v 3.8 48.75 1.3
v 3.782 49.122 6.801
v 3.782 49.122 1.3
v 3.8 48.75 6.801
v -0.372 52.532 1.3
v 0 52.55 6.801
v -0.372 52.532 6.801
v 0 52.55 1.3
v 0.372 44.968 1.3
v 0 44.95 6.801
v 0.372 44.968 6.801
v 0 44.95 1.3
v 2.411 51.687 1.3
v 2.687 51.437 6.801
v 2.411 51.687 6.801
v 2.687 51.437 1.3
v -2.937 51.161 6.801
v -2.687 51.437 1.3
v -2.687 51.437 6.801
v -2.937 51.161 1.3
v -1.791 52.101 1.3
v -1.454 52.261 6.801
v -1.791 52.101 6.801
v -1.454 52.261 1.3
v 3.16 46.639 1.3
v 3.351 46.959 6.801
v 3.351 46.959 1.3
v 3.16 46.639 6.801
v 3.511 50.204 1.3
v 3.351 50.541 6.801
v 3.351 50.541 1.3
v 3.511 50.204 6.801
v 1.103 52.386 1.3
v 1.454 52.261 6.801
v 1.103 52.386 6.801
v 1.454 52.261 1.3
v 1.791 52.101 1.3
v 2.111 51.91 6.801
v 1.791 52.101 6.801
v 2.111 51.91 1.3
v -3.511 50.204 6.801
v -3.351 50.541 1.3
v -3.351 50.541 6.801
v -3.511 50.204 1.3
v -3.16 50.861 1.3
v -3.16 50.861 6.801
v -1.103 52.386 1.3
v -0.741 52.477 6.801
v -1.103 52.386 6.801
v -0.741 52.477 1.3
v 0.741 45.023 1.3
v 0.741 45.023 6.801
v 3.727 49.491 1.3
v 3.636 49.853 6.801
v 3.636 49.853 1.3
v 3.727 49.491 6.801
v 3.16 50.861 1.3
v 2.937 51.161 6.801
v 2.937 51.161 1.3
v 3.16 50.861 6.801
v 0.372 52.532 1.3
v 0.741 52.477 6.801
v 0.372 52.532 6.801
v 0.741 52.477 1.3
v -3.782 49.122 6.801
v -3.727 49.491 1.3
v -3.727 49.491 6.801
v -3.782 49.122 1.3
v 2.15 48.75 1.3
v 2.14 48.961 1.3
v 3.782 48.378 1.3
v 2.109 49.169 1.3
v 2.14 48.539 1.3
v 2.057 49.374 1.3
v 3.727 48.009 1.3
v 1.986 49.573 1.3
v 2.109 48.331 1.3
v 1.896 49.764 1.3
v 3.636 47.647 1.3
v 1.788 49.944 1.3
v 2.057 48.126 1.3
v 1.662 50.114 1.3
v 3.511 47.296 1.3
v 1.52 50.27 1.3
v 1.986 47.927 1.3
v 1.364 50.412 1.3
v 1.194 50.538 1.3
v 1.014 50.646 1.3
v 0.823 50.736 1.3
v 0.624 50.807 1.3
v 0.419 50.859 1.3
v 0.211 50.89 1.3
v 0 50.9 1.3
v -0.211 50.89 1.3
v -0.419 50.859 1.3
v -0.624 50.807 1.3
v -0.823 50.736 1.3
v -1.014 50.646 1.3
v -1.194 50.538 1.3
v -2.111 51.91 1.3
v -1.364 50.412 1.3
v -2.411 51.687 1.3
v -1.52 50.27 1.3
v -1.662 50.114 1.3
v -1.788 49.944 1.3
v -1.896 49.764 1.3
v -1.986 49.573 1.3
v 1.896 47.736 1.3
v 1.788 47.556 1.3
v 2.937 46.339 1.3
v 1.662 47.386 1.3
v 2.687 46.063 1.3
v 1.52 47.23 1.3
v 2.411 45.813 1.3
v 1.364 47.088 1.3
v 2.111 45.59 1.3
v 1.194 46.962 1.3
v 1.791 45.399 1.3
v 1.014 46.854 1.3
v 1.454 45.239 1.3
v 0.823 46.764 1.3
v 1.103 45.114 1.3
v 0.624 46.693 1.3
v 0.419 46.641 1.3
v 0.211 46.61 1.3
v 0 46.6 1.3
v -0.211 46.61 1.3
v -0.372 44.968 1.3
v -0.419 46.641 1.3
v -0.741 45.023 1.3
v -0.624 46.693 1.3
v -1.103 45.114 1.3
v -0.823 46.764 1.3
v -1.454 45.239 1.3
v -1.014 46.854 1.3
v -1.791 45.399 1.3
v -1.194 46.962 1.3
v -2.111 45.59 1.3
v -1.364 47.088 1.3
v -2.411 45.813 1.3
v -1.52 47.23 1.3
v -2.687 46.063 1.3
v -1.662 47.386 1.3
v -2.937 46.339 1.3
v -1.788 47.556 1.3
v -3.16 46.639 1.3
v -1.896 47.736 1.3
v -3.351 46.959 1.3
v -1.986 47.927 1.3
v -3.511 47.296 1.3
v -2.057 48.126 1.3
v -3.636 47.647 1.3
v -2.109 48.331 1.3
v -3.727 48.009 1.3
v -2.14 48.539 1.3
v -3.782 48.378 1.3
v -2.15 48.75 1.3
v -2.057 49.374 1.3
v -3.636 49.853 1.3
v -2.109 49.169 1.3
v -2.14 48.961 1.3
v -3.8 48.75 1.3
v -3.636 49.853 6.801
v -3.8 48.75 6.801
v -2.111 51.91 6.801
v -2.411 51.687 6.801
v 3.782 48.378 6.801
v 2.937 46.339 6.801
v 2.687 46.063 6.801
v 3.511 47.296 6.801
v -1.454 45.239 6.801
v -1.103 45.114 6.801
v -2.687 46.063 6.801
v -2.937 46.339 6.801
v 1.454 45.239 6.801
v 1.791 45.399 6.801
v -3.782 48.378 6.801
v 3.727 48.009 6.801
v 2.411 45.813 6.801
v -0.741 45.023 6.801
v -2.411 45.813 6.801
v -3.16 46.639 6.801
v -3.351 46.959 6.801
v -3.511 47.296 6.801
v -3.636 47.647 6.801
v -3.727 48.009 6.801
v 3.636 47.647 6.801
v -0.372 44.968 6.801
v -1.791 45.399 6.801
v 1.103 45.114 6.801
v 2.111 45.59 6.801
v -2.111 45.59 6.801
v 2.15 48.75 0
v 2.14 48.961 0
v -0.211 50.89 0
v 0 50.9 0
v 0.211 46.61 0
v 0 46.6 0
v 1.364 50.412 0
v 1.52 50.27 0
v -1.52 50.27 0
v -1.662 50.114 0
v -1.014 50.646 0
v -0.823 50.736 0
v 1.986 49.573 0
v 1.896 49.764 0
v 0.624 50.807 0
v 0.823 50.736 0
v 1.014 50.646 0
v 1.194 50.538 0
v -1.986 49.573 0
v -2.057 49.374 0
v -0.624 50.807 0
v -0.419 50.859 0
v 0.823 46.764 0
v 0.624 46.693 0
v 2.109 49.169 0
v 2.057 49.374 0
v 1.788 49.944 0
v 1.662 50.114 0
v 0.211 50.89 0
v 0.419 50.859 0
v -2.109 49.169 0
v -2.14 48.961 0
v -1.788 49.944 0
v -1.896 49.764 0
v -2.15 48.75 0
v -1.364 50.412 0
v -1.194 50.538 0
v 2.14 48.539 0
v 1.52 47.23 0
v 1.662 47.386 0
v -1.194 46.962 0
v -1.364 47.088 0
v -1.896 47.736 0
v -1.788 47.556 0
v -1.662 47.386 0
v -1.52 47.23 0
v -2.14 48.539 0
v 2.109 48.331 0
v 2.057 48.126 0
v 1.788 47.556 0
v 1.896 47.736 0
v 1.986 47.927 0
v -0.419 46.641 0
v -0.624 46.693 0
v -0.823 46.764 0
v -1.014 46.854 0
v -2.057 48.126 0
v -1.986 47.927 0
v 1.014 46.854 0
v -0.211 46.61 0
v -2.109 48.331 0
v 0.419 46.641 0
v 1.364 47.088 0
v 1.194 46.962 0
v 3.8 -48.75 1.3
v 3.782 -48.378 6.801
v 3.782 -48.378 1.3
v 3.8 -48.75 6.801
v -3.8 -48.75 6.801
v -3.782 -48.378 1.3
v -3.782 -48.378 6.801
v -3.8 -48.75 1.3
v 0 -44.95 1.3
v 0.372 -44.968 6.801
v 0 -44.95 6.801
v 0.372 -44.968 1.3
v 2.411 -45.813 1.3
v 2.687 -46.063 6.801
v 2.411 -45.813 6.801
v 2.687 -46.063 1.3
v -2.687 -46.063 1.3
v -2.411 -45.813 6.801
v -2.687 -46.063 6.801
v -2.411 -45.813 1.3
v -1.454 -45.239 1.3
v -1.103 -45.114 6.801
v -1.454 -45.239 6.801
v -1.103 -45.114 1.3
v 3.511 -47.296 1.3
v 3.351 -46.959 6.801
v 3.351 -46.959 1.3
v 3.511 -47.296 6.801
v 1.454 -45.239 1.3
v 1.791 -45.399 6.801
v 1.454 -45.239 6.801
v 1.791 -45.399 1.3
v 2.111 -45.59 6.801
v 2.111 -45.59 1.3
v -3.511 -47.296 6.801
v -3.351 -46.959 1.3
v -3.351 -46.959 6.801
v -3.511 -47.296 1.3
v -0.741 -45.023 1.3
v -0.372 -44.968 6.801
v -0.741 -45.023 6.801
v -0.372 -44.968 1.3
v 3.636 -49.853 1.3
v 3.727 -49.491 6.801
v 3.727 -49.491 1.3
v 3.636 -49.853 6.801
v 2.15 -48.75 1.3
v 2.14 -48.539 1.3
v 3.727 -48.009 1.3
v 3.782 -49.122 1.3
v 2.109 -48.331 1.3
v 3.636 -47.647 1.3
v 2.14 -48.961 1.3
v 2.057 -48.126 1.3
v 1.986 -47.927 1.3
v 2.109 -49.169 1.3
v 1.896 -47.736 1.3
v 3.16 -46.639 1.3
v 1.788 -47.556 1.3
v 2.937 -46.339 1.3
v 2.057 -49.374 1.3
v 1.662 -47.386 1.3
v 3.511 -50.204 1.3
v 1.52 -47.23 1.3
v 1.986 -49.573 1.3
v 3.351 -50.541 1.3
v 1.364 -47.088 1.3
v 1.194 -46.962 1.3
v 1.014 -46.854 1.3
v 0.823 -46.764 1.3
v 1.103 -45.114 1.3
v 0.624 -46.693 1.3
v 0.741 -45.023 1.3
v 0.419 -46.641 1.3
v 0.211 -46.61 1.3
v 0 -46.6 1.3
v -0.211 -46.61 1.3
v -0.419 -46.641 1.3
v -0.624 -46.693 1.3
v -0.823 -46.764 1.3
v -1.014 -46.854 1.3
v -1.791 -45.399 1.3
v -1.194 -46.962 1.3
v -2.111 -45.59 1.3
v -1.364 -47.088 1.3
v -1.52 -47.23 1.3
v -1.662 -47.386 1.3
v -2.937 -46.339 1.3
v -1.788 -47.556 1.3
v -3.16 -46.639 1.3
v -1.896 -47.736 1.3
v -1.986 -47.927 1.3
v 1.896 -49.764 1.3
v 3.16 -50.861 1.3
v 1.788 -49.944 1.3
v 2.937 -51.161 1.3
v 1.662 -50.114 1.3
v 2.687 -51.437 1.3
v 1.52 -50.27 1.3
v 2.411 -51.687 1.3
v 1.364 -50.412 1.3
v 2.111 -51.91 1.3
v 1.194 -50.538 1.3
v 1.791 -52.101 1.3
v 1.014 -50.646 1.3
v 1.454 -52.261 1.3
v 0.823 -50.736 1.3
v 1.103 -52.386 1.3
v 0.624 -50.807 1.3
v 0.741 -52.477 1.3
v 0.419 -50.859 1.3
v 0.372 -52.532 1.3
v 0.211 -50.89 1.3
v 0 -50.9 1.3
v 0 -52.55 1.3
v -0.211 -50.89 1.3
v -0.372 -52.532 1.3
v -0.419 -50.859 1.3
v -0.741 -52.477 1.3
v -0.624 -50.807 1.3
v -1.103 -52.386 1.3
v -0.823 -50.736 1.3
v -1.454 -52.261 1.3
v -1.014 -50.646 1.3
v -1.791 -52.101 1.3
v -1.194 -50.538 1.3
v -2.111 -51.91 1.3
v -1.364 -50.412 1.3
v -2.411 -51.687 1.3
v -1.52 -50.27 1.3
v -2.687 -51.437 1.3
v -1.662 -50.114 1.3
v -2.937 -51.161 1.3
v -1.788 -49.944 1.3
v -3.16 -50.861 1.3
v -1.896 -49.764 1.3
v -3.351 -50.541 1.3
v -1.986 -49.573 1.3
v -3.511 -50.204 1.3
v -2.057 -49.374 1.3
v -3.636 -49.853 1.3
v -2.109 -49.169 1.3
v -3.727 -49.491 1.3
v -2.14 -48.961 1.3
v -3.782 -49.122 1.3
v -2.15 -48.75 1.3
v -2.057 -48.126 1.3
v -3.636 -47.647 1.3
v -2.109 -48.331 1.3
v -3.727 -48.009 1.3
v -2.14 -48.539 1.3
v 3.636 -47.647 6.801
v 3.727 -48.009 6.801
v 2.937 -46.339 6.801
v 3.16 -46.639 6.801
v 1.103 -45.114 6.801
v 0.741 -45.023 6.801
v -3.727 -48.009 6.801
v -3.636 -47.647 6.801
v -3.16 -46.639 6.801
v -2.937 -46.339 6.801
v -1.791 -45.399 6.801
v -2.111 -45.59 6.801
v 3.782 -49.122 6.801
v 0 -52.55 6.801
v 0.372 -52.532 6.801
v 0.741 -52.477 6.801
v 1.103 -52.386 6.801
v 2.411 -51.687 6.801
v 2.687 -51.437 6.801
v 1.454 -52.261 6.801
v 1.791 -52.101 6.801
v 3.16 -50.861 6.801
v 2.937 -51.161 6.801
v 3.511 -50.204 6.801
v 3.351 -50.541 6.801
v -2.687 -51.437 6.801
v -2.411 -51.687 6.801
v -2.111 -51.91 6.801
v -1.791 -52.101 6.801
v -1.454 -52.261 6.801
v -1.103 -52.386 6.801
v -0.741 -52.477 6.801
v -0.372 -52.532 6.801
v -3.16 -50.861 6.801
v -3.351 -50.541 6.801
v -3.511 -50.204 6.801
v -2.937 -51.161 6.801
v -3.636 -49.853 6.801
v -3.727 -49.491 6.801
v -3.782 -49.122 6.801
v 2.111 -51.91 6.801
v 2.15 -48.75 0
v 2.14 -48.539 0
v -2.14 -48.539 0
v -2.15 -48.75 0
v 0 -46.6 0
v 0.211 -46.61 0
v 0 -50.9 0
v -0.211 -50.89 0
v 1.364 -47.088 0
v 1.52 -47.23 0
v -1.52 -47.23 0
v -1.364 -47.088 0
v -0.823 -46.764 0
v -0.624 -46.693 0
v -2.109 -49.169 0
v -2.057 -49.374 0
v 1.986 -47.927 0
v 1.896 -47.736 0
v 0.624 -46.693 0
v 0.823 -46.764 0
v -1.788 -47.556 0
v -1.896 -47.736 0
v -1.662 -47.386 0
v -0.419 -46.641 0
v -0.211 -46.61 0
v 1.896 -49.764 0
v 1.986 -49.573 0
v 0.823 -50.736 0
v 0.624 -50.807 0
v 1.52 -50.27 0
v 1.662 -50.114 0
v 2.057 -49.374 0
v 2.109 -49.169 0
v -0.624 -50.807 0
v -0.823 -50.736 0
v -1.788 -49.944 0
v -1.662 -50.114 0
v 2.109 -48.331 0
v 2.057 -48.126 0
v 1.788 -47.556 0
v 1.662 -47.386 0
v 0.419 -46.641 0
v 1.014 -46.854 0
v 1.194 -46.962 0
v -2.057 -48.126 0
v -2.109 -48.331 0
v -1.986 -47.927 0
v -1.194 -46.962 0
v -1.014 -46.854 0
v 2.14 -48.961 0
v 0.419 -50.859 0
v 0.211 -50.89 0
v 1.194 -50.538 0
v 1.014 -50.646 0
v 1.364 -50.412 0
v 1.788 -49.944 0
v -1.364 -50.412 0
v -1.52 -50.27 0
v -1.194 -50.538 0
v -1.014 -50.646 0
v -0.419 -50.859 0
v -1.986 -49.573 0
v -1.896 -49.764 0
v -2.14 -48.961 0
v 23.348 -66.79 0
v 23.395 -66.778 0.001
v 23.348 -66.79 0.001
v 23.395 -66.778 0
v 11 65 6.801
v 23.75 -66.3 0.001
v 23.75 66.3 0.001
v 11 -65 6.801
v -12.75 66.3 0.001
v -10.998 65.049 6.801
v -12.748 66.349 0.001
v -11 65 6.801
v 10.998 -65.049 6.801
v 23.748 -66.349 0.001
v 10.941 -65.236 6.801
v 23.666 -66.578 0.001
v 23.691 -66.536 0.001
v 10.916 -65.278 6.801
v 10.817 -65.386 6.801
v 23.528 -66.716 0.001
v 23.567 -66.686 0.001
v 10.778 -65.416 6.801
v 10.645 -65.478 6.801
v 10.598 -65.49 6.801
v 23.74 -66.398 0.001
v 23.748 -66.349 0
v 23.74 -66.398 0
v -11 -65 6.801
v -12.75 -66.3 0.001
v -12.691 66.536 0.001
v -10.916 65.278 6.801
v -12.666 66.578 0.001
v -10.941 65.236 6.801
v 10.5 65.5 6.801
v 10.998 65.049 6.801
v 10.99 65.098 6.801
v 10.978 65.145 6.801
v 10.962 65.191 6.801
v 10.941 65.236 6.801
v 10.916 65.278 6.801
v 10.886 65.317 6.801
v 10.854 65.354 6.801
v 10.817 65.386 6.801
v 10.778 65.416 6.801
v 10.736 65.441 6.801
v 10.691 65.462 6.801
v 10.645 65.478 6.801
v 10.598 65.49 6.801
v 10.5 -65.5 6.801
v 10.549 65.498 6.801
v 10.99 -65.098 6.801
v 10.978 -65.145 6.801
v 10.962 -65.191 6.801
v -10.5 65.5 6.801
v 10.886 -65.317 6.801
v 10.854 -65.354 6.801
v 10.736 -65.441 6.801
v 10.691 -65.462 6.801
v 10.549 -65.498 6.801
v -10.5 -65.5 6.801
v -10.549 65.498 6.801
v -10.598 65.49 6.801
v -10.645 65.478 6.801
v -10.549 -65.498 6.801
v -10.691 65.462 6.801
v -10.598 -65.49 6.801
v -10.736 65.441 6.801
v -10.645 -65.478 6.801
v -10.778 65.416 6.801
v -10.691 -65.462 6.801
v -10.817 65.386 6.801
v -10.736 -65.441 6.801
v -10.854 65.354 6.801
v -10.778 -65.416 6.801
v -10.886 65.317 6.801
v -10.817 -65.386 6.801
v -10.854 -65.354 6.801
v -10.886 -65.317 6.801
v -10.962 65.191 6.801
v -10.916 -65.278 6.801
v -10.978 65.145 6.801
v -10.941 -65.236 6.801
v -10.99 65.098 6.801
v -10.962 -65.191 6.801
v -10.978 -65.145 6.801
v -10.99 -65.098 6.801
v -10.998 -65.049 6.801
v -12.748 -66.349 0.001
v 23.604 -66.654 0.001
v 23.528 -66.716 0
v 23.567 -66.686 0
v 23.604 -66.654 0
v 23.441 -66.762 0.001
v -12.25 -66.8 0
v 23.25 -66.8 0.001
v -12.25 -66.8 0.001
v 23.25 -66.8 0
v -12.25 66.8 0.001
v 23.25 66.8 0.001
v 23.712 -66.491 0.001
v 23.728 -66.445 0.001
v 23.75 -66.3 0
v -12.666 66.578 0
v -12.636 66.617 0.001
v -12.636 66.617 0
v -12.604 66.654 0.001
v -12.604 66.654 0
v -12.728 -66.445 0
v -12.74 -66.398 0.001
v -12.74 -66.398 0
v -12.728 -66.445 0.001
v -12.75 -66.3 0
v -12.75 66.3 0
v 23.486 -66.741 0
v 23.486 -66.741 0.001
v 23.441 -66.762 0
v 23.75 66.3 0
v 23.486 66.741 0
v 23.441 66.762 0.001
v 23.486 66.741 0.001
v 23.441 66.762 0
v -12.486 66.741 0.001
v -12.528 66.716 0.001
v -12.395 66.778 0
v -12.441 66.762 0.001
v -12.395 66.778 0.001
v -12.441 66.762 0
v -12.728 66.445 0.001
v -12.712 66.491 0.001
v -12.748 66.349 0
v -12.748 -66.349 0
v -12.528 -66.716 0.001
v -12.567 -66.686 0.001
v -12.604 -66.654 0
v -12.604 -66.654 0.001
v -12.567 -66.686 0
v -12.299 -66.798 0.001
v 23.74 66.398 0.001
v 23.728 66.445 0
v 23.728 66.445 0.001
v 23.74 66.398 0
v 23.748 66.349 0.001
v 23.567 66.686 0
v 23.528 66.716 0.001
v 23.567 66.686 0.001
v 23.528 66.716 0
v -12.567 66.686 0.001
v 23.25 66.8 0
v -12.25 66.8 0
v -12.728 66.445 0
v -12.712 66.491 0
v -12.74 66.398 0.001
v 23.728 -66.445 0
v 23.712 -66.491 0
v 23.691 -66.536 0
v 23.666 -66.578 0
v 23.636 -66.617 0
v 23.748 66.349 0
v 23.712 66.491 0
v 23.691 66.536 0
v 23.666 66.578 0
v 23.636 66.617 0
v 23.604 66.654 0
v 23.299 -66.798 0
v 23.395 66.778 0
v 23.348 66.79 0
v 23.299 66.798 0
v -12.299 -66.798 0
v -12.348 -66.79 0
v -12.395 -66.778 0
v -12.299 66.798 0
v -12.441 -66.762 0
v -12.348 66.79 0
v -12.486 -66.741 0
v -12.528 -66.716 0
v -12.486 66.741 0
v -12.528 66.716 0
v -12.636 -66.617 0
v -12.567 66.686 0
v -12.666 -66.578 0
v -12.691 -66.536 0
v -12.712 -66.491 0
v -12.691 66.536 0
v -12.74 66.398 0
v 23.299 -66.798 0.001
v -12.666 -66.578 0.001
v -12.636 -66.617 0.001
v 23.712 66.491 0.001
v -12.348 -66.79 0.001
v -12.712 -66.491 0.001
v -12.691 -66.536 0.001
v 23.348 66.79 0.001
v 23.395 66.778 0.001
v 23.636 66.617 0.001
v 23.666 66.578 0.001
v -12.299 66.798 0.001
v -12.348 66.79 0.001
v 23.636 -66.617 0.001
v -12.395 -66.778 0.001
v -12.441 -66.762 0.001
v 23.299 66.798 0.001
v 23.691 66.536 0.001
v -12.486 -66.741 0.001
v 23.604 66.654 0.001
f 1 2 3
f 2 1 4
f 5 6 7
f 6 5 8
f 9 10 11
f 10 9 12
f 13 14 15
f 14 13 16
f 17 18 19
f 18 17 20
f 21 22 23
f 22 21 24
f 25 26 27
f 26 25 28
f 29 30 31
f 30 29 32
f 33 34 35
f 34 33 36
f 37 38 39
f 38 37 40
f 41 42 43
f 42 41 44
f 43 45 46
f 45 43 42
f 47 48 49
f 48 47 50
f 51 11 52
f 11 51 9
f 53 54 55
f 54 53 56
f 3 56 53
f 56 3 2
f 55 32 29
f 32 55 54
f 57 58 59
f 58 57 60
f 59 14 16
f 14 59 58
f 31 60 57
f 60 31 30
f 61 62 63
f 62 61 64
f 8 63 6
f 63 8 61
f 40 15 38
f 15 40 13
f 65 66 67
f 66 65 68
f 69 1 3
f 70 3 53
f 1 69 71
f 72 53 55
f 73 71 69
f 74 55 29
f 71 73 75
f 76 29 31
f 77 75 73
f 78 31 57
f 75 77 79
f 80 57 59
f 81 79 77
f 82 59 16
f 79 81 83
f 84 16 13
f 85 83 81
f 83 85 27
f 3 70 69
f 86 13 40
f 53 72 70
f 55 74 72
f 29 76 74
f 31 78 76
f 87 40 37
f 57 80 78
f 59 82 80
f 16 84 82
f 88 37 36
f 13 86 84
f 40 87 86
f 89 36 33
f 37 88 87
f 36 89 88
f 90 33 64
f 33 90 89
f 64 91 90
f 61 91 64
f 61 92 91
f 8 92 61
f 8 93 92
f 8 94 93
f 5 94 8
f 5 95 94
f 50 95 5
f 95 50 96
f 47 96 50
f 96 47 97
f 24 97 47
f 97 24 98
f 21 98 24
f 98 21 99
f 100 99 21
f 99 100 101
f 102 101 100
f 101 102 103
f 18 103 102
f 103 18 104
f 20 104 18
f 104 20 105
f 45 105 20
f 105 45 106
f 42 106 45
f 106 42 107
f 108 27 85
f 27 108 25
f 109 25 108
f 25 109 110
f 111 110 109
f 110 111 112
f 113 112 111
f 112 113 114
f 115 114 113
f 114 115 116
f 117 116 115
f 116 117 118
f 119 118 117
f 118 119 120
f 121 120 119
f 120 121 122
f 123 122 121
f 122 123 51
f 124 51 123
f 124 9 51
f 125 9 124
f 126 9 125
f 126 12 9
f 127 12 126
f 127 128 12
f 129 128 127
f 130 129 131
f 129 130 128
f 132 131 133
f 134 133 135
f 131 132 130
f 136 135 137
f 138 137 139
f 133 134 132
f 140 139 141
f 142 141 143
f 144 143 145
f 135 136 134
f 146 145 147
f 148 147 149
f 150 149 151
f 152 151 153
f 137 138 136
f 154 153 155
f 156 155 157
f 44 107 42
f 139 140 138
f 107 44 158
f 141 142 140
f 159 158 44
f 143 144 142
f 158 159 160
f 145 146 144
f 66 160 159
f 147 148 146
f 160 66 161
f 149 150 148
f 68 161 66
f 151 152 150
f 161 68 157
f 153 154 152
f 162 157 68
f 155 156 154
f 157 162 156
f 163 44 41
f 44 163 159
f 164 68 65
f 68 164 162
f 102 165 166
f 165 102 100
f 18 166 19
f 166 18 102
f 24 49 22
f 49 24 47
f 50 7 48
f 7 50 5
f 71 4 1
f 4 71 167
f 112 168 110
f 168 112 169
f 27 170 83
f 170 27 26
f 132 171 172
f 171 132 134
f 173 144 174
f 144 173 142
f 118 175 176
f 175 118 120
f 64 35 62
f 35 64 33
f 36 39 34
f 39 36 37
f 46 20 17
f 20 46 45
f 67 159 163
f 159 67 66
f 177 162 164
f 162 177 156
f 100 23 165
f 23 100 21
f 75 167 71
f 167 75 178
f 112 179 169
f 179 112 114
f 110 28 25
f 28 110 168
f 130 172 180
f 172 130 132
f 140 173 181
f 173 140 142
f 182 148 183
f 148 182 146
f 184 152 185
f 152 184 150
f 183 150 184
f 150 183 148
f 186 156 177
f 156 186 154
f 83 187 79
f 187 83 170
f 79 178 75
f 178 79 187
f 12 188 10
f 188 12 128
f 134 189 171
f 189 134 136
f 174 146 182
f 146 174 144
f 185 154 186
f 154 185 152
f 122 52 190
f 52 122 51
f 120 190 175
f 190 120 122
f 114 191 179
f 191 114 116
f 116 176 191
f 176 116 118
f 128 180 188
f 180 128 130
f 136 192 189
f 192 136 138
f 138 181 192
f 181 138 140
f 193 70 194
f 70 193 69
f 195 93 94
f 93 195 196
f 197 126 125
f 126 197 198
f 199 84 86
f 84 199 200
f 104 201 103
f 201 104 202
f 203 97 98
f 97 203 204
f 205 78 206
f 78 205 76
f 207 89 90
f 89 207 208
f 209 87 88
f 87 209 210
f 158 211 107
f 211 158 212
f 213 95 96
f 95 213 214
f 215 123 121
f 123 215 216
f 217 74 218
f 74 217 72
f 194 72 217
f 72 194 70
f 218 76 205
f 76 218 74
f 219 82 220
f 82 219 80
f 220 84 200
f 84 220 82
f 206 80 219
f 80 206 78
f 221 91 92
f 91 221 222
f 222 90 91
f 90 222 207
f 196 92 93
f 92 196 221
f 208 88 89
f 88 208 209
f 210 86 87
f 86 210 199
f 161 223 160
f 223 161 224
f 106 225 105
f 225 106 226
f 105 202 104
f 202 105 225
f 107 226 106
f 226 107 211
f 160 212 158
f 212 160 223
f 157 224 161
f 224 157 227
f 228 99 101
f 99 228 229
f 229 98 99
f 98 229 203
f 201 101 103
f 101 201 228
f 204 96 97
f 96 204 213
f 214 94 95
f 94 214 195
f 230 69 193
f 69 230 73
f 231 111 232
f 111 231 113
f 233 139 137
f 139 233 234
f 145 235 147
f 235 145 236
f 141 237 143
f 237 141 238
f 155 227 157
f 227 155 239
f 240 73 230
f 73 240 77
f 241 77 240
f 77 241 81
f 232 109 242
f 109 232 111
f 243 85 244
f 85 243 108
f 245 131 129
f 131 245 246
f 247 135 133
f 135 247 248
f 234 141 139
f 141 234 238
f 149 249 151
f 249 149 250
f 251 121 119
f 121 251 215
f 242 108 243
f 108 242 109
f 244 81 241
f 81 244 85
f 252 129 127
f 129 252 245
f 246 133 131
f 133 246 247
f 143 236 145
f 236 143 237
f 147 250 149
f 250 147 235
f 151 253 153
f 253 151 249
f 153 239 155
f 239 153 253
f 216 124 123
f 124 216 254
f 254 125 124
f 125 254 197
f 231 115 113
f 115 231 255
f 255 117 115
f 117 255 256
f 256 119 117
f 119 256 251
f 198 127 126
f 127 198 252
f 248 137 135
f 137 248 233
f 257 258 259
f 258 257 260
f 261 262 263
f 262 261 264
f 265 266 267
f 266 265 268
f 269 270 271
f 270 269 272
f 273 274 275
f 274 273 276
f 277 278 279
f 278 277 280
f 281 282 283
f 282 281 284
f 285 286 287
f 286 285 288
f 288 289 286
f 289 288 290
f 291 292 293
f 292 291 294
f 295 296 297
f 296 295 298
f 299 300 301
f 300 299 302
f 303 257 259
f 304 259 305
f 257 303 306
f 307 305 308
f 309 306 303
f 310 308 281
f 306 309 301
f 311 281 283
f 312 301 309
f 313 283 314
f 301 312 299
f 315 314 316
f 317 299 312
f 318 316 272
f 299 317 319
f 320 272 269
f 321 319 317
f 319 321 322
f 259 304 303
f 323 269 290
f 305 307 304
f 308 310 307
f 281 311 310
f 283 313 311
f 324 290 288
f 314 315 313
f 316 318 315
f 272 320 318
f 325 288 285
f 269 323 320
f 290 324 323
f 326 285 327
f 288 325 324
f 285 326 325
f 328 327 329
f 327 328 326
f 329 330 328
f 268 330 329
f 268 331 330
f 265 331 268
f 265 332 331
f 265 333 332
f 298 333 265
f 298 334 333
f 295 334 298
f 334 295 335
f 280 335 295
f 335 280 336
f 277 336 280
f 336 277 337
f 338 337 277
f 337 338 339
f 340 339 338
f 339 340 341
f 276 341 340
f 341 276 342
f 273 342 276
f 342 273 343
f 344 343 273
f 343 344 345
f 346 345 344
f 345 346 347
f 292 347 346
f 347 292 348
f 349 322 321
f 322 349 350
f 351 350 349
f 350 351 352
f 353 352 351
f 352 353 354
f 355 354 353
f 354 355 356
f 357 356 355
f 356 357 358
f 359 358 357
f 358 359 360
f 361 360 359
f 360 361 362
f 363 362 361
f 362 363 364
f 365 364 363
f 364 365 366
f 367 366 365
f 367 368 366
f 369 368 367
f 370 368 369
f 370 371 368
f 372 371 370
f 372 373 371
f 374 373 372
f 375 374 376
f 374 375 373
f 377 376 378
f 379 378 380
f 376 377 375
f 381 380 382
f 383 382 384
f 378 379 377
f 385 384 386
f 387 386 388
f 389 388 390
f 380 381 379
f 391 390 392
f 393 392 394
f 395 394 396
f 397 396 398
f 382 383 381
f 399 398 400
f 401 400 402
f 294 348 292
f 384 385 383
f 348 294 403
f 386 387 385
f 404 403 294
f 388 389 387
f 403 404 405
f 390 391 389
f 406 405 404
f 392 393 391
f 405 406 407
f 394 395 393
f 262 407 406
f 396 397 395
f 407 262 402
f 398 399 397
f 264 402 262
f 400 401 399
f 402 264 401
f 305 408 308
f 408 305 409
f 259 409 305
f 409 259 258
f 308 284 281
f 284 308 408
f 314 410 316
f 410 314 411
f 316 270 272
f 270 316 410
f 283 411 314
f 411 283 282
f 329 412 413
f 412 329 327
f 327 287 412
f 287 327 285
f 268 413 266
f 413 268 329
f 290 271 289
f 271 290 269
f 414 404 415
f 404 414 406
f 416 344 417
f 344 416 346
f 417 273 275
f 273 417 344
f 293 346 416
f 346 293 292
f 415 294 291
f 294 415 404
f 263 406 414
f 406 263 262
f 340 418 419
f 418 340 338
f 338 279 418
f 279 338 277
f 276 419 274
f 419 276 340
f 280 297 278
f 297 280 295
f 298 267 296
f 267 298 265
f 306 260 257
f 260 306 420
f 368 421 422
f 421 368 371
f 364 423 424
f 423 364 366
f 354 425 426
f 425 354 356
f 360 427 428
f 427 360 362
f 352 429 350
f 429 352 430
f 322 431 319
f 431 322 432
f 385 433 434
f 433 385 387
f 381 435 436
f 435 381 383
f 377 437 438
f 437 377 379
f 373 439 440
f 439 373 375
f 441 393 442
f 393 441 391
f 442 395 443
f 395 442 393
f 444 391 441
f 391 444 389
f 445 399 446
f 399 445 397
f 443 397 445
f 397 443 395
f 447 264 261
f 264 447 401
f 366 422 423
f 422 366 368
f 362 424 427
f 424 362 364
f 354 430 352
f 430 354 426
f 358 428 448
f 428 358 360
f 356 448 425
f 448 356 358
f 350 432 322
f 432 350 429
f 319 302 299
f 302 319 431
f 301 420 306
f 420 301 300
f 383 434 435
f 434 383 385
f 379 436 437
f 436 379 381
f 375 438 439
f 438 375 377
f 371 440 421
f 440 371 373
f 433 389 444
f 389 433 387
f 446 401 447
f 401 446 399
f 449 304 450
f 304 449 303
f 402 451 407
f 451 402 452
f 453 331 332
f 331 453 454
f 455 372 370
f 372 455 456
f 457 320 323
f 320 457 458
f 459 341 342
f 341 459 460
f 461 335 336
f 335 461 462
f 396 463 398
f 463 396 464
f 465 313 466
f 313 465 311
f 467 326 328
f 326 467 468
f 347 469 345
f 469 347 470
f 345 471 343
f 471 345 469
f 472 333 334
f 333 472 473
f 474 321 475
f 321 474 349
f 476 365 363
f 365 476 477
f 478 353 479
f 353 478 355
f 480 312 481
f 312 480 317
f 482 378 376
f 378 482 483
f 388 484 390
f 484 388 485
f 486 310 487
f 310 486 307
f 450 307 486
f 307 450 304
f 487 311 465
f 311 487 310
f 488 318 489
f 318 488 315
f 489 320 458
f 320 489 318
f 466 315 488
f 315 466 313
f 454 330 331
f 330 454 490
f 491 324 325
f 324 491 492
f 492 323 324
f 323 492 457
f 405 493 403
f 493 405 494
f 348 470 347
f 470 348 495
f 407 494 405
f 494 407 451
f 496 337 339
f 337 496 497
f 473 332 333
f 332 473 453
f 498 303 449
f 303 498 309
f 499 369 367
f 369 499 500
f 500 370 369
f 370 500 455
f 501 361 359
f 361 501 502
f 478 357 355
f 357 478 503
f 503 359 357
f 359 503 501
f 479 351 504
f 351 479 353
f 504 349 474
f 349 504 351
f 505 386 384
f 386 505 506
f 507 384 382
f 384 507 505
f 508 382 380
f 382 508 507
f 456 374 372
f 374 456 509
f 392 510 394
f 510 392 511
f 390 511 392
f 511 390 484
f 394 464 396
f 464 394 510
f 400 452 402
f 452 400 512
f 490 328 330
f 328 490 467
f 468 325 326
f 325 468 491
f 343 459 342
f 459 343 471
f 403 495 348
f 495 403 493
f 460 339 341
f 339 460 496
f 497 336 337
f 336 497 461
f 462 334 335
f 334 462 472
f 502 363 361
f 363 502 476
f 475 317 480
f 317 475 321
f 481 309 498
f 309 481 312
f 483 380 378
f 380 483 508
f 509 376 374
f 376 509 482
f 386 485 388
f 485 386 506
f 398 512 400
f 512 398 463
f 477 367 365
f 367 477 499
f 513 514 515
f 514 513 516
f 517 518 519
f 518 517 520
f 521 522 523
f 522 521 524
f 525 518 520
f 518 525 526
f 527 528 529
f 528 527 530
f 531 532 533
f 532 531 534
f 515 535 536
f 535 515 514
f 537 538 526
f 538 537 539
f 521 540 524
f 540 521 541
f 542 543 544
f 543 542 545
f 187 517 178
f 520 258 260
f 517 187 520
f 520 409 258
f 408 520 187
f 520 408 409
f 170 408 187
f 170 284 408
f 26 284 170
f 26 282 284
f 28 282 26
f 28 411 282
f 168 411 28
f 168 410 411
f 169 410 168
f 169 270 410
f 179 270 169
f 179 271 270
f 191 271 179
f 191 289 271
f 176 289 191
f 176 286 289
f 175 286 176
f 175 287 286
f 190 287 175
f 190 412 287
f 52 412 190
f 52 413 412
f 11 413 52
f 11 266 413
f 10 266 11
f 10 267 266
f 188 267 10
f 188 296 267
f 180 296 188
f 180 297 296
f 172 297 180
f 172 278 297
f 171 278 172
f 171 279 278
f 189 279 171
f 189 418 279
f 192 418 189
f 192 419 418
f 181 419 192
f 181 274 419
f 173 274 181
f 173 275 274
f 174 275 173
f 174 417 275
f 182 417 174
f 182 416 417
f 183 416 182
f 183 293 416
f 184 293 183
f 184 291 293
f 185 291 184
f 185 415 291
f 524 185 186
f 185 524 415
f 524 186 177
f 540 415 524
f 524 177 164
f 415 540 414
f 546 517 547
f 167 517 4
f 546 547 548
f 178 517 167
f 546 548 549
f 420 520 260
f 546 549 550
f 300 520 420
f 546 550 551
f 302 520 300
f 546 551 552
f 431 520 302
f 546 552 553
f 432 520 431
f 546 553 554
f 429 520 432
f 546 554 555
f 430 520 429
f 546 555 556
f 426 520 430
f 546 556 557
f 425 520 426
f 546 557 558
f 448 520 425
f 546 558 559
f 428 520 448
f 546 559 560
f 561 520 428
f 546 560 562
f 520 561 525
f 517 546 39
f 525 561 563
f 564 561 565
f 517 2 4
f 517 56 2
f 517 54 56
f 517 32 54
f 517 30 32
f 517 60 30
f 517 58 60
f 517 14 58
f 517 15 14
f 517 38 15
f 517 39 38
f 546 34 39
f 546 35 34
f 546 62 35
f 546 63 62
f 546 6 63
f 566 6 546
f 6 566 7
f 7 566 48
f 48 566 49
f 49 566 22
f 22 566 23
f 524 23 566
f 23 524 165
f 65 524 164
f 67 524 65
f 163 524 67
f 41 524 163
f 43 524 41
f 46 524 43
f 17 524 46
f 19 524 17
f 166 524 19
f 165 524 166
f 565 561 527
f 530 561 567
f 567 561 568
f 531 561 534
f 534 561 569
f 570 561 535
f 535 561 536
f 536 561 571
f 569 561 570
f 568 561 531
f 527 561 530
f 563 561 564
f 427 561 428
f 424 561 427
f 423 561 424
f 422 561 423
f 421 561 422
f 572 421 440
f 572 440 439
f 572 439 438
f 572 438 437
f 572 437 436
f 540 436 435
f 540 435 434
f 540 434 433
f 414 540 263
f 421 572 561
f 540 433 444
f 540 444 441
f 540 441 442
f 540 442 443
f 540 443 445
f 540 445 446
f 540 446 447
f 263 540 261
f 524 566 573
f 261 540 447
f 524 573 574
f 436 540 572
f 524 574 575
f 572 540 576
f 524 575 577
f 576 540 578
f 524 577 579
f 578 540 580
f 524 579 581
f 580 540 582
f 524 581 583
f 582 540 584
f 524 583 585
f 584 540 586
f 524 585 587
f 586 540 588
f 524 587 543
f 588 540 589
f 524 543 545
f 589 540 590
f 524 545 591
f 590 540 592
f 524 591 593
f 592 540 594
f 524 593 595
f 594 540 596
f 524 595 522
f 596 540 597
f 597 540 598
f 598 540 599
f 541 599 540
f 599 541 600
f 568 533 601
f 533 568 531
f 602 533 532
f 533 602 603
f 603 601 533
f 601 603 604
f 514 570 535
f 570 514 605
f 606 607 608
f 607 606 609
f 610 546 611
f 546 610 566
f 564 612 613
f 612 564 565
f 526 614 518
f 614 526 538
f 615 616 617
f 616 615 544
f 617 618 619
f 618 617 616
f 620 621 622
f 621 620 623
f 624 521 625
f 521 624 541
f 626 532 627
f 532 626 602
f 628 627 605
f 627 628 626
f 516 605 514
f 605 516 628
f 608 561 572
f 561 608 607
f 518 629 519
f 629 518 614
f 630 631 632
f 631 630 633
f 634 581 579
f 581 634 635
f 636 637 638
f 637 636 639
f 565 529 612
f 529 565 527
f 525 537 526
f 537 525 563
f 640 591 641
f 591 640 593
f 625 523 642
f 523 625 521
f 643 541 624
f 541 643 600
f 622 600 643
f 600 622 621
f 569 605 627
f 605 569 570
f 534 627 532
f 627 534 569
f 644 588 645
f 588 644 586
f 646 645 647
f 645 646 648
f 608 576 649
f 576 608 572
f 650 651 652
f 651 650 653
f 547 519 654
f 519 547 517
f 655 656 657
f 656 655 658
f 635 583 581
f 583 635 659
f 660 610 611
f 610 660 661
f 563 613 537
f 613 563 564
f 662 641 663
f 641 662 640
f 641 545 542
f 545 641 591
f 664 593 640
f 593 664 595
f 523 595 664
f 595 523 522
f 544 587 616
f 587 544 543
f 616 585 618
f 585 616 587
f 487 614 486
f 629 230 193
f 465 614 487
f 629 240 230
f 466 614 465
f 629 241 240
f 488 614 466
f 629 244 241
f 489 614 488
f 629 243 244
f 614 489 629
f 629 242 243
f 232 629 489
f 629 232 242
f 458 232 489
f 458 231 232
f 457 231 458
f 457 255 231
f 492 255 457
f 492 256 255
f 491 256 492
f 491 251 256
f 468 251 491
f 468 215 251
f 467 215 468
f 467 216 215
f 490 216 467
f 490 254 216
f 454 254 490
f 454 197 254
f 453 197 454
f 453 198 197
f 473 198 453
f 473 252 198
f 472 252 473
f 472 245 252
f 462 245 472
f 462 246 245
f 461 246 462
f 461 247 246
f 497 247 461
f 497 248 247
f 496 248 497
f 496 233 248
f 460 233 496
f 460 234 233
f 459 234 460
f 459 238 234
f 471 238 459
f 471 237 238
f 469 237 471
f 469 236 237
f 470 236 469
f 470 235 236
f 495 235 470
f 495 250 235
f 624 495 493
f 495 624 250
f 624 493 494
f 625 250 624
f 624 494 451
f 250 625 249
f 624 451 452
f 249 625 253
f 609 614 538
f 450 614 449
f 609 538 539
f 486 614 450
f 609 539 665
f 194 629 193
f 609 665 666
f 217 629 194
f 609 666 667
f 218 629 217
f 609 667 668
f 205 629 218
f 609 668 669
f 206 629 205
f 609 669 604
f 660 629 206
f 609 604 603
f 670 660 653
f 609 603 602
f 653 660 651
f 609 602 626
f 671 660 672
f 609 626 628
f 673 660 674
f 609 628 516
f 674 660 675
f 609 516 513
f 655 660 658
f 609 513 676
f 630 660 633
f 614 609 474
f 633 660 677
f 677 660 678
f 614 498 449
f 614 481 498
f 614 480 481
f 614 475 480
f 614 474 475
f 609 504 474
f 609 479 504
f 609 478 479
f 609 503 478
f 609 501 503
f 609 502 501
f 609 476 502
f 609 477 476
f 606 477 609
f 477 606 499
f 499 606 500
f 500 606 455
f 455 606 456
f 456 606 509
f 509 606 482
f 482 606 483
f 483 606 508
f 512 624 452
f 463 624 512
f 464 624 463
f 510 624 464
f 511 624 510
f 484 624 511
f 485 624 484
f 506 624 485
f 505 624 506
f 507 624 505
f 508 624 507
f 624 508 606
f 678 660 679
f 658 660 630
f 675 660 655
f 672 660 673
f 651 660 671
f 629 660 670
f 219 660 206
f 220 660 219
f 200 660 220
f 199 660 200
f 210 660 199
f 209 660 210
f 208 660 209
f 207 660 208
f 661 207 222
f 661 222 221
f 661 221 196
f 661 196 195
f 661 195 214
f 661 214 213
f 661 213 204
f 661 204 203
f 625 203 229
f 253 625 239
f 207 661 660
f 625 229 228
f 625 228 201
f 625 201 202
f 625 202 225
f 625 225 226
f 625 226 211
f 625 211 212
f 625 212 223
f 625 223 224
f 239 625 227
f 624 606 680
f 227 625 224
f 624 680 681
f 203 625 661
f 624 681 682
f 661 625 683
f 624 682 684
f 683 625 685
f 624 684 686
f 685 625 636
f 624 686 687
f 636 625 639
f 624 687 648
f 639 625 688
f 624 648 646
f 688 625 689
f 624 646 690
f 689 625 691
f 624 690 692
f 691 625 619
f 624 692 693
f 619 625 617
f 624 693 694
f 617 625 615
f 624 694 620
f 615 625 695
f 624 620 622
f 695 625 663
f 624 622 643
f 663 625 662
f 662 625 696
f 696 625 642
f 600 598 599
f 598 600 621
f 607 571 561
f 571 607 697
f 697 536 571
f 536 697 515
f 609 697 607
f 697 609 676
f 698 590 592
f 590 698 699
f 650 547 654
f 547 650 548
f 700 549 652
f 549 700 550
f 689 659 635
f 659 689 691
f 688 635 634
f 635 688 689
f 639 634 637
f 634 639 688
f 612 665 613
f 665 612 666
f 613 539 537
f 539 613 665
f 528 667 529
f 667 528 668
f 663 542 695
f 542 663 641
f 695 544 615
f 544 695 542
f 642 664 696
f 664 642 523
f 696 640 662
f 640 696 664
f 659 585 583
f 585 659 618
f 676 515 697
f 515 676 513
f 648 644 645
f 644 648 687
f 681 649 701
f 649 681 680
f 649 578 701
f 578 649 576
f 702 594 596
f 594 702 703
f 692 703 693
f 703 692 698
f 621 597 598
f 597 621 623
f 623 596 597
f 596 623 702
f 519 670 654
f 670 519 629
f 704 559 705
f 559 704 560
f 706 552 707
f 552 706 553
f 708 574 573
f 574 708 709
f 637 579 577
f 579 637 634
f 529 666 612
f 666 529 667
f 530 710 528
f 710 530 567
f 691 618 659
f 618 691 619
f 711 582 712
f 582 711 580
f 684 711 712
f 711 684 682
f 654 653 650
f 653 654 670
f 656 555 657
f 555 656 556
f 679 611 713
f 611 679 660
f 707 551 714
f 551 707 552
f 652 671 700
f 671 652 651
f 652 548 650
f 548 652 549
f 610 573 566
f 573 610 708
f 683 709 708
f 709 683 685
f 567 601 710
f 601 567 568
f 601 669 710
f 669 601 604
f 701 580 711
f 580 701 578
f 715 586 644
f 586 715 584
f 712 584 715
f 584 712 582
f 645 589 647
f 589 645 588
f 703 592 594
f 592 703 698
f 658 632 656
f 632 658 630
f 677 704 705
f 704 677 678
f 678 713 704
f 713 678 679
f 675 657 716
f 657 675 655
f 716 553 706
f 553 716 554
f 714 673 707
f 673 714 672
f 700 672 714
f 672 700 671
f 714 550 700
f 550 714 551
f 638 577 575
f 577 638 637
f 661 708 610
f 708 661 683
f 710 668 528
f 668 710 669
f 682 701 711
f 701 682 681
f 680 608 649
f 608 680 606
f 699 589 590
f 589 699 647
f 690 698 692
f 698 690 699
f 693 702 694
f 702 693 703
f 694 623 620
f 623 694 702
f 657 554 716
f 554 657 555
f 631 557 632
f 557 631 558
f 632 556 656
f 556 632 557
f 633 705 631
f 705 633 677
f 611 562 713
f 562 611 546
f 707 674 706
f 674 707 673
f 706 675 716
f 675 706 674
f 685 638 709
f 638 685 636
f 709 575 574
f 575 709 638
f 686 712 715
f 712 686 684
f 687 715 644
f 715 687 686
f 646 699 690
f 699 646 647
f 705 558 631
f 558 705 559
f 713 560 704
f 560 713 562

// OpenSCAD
//                    _
// |\/| _  _  _  _  _|_) __  o _  __| _
// |  |(/_(_|(_|| |_>|  | (_)|(/_(_ |_>
//         _|               _|
//       www.megansprojects.com
// 
// Replacement foot/base plinth for Ekco U245

// All measurements are in mm

$fn = 64;

plate_width      = 36.5;
plate_length     = 133.6;
plate_height     = 6.8;
plate_thickness  = 1.3;

top_width        = 22;
top_length       = 131;
top_width_offset = 11;
top_length_offset = ( plate_length - top_length ) /2;

large_hole_rad = 7.6 / 2;
small_hole_rad = 4.3 / 2;
half_hole_dist = 97.5 / 2;

module roundrec(size=[plate_width, plate_length], radius=0.5, center=true)
{
    offset(radius) offset(-radius) square(size, center);
}

difference()
{
    hull()
    {
        translate([top_width_offset/2, 0,  0]) linear_extrude(height=0.001) roundrec();
        translate([0, 0,   plate_height]) linear_extrude(height=0.001) roundrec([top_width, top_length]);
    }
    union()
    {
        translate ( [0,half_hole_dist, plate_thickness ]) cylinder ( h=plate_height, r=large_hole_rad );
        translate ( [0,half_hole_dist, -0.01 ]) cylinder ( h=plate_height, r=small_hole_rad );
        translate ( [0,-half_hole_dist, plate_thickness ]) cylinder ( h=plate_height, r=large_hole_rad );
        translate ( [0,-half_hole_dist, -0.01 ]) cylinder ( h=plate_height, r=small_hole_rad );
    }
}
